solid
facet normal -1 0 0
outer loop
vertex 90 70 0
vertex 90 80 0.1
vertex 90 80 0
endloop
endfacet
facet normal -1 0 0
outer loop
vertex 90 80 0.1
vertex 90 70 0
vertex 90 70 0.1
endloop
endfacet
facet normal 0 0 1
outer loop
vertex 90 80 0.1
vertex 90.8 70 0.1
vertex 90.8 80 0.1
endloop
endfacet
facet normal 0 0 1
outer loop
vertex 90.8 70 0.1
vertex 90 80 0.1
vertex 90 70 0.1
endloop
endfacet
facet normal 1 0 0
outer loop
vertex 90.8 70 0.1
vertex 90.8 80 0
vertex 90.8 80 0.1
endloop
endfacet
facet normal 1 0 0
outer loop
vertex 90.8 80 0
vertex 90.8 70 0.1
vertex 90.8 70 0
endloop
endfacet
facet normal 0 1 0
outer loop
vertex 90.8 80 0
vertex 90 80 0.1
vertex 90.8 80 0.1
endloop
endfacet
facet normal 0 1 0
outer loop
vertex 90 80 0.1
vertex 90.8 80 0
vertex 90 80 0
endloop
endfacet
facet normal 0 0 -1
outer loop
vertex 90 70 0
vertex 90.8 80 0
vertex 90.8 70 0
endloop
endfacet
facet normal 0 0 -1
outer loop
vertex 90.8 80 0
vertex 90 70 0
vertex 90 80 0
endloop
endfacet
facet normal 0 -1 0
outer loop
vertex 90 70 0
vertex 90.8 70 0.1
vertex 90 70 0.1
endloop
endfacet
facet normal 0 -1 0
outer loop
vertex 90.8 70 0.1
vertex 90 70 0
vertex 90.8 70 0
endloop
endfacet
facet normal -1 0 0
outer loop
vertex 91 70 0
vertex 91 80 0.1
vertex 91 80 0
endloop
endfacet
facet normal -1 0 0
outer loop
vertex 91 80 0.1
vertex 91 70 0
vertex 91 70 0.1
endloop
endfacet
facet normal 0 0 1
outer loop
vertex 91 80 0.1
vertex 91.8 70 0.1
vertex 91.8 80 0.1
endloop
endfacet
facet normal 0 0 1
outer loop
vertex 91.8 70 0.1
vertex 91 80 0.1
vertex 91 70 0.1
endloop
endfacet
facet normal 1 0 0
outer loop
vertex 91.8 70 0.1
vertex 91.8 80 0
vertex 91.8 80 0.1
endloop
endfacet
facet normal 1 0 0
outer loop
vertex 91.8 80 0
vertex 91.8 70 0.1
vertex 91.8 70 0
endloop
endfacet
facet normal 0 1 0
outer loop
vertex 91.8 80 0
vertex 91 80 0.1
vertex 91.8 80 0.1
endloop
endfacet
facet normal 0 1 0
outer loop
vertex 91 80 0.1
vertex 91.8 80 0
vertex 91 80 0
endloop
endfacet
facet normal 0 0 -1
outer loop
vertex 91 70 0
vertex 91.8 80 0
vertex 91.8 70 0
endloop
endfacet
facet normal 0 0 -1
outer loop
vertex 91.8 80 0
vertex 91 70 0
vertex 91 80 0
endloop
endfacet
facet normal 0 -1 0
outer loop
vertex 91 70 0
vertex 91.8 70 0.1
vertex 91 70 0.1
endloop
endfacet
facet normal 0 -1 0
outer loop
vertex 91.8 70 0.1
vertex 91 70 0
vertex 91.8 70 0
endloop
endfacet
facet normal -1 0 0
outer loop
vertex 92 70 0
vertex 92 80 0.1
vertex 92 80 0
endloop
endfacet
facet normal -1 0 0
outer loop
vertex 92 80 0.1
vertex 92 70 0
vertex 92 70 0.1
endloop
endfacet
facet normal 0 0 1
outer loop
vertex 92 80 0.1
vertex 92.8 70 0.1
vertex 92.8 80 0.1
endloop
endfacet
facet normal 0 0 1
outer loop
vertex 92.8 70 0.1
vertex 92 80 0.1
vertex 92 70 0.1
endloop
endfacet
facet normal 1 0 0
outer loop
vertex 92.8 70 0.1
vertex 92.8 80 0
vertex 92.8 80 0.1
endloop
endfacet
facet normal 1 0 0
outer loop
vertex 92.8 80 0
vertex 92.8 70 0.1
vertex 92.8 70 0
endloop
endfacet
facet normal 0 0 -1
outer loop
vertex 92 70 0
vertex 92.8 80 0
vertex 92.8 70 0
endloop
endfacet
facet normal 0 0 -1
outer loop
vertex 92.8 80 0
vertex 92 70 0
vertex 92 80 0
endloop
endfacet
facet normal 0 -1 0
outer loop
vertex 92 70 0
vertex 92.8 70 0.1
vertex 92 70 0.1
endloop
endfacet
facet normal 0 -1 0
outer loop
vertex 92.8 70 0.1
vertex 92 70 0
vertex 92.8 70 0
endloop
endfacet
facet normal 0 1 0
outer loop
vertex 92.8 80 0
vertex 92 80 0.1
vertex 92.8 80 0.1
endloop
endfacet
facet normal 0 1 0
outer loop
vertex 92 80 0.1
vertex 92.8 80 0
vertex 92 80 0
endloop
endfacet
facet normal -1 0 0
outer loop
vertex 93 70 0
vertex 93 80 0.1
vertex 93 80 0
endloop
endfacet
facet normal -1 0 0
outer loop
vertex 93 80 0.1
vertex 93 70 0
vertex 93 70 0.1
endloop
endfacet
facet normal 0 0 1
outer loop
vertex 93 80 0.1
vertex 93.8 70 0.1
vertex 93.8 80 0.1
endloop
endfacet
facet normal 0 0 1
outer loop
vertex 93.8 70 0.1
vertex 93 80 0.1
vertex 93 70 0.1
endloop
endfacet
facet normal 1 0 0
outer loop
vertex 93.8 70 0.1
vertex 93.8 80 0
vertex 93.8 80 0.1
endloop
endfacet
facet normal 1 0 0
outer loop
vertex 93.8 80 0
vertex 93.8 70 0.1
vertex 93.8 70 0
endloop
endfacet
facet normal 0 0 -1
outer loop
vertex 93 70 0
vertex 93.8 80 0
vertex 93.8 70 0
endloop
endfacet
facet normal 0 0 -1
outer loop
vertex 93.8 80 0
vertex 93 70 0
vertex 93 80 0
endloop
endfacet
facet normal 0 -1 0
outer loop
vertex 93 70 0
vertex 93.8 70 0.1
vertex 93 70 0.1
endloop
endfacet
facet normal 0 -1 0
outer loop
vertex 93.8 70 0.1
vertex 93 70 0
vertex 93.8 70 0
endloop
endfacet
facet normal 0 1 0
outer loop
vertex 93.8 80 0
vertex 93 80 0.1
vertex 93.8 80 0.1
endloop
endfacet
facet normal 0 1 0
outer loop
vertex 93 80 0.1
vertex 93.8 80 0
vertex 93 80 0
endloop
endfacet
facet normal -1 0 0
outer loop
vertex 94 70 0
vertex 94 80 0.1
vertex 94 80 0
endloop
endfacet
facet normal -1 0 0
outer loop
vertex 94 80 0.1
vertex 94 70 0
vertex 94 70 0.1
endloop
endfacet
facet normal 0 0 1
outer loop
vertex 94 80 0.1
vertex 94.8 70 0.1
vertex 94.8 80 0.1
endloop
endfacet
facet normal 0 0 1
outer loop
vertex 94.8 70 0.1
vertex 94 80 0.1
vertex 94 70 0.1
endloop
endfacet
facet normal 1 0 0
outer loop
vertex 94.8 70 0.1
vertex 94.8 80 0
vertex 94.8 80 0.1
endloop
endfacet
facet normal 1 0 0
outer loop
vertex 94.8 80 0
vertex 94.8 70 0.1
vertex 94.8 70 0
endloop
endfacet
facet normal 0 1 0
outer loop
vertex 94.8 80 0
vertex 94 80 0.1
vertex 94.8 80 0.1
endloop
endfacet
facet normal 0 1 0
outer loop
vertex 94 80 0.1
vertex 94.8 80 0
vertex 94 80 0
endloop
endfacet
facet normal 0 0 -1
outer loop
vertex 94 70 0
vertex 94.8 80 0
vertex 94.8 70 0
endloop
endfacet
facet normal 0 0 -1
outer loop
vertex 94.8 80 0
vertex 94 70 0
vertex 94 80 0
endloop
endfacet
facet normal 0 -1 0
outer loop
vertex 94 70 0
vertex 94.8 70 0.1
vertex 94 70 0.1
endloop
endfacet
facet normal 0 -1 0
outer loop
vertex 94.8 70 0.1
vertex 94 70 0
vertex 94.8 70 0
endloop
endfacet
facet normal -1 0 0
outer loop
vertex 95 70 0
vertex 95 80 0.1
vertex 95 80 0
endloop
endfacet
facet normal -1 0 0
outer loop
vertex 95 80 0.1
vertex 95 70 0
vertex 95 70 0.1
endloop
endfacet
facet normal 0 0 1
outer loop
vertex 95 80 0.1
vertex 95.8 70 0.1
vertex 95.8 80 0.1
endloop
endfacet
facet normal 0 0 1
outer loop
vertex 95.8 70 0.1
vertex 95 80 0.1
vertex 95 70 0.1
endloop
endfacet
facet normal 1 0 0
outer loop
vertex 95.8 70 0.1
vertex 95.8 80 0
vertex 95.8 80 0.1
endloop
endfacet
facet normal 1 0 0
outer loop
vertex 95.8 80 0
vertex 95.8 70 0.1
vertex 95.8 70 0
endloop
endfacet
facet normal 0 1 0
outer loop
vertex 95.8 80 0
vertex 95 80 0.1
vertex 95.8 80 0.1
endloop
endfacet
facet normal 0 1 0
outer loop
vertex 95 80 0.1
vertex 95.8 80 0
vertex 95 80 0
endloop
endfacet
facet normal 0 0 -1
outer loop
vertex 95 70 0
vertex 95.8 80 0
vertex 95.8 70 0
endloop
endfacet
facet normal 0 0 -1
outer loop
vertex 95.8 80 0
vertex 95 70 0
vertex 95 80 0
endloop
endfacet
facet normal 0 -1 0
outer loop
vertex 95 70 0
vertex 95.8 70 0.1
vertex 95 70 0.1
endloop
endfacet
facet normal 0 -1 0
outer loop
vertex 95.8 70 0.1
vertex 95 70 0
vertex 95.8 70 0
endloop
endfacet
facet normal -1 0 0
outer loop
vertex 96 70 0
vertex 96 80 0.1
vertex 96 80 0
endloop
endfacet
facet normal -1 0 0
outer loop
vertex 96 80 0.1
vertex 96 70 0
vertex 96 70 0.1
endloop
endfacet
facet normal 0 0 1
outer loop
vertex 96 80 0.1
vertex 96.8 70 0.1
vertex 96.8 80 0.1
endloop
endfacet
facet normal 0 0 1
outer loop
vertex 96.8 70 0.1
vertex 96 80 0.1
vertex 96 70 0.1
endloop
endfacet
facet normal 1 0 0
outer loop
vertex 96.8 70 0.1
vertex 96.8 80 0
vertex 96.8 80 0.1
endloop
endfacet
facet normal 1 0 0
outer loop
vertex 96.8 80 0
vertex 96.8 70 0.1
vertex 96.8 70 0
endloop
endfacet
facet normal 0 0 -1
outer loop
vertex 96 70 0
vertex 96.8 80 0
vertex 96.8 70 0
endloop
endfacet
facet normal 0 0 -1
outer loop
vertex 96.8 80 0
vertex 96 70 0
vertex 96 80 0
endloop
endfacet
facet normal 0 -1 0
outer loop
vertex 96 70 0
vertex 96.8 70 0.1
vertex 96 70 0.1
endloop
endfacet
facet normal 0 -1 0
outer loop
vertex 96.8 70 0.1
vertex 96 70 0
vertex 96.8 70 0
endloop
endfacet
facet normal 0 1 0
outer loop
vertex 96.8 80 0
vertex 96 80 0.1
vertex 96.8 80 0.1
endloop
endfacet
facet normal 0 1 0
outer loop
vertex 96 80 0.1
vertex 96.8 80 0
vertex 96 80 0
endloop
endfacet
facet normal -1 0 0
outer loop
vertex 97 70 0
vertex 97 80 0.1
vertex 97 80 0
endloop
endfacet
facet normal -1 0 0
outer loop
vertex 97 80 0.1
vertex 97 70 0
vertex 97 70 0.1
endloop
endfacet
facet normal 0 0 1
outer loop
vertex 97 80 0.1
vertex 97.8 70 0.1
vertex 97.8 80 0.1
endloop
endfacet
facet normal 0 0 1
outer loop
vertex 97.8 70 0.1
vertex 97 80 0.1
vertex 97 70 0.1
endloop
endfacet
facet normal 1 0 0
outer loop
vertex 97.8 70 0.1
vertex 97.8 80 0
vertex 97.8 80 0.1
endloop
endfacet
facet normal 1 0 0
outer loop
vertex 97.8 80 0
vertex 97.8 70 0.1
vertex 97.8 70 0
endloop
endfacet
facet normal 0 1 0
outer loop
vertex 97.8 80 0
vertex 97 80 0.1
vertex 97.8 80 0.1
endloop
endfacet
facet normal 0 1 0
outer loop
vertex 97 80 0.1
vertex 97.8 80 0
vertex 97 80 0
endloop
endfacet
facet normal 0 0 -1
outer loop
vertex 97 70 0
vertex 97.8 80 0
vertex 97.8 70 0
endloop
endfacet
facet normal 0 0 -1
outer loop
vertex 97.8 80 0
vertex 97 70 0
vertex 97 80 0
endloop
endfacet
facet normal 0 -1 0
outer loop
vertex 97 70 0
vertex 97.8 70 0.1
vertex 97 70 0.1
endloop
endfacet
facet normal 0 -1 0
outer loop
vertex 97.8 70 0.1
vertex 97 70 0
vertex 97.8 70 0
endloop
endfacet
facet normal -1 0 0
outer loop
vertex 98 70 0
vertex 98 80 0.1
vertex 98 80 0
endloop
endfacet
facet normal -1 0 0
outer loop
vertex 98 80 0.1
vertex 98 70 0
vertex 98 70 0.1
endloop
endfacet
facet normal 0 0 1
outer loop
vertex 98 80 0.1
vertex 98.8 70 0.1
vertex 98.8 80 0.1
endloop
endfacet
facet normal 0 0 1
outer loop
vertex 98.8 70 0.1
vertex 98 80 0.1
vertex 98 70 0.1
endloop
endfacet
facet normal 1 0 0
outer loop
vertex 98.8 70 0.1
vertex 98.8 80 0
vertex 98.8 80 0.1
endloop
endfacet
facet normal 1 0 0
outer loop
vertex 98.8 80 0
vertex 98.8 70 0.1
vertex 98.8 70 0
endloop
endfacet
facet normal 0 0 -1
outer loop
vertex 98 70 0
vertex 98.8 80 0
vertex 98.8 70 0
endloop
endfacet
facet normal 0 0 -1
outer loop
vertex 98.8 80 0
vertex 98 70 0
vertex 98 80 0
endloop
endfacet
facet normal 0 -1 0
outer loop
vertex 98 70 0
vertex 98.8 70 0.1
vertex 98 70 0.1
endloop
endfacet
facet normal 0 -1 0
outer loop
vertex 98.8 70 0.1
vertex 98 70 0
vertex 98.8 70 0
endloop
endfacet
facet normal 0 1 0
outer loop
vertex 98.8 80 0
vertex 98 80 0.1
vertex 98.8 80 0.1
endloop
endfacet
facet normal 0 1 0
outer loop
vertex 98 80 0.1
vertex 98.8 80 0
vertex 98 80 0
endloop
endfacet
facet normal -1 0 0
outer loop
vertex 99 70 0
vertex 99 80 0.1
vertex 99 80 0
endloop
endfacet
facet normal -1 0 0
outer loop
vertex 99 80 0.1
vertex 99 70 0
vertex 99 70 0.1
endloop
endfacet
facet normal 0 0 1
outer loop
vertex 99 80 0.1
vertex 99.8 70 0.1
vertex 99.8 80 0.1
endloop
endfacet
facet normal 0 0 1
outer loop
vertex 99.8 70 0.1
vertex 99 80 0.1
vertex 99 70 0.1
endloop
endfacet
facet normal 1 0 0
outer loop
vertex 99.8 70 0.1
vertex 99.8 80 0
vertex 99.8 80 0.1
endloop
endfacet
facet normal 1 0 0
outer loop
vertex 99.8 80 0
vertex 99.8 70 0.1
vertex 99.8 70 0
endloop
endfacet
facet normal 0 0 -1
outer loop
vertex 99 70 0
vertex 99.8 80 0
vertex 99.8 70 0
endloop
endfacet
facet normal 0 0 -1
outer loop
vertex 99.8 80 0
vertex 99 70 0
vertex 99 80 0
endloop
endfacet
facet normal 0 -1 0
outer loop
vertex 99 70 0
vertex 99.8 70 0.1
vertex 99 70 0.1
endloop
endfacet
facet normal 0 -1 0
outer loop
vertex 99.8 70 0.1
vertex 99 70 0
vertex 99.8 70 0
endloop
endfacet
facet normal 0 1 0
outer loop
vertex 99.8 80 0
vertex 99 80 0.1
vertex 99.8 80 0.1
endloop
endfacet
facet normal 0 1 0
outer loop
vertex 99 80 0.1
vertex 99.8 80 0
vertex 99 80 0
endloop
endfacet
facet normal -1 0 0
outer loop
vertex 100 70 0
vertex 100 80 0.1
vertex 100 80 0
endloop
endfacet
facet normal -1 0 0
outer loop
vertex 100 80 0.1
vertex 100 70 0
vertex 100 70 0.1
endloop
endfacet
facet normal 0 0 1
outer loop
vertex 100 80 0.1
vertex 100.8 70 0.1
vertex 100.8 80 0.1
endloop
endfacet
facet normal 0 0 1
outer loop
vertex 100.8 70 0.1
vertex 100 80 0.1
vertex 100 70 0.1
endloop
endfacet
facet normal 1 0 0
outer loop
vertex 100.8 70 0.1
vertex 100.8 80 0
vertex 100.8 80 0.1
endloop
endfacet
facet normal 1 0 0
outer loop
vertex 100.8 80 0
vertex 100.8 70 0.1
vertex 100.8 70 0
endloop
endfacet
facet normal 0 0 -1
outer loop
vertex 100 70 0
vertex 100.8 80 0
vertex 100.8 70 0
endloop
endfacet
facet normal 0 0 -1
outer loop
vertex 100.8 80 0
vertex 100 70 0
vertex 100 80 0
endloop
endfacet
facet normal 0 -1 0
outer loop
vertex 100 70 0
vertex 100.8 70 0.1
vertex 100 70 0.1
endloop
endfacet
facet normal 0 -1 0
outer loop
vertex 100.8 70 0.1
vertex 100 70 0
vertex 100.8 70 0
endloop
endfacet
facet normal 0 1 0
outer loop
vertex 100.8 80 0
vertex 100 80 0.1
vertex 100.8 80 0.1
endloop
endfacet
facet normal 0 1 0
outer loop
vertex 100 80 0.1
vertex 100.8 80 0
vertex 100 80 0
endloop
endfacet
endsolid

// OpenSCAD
translate([10+80,10+60,0])
        for (i = [0 : 10]){
            translate([i,0,0])
                cube(size = [0.8,10,0.1]);
    }
